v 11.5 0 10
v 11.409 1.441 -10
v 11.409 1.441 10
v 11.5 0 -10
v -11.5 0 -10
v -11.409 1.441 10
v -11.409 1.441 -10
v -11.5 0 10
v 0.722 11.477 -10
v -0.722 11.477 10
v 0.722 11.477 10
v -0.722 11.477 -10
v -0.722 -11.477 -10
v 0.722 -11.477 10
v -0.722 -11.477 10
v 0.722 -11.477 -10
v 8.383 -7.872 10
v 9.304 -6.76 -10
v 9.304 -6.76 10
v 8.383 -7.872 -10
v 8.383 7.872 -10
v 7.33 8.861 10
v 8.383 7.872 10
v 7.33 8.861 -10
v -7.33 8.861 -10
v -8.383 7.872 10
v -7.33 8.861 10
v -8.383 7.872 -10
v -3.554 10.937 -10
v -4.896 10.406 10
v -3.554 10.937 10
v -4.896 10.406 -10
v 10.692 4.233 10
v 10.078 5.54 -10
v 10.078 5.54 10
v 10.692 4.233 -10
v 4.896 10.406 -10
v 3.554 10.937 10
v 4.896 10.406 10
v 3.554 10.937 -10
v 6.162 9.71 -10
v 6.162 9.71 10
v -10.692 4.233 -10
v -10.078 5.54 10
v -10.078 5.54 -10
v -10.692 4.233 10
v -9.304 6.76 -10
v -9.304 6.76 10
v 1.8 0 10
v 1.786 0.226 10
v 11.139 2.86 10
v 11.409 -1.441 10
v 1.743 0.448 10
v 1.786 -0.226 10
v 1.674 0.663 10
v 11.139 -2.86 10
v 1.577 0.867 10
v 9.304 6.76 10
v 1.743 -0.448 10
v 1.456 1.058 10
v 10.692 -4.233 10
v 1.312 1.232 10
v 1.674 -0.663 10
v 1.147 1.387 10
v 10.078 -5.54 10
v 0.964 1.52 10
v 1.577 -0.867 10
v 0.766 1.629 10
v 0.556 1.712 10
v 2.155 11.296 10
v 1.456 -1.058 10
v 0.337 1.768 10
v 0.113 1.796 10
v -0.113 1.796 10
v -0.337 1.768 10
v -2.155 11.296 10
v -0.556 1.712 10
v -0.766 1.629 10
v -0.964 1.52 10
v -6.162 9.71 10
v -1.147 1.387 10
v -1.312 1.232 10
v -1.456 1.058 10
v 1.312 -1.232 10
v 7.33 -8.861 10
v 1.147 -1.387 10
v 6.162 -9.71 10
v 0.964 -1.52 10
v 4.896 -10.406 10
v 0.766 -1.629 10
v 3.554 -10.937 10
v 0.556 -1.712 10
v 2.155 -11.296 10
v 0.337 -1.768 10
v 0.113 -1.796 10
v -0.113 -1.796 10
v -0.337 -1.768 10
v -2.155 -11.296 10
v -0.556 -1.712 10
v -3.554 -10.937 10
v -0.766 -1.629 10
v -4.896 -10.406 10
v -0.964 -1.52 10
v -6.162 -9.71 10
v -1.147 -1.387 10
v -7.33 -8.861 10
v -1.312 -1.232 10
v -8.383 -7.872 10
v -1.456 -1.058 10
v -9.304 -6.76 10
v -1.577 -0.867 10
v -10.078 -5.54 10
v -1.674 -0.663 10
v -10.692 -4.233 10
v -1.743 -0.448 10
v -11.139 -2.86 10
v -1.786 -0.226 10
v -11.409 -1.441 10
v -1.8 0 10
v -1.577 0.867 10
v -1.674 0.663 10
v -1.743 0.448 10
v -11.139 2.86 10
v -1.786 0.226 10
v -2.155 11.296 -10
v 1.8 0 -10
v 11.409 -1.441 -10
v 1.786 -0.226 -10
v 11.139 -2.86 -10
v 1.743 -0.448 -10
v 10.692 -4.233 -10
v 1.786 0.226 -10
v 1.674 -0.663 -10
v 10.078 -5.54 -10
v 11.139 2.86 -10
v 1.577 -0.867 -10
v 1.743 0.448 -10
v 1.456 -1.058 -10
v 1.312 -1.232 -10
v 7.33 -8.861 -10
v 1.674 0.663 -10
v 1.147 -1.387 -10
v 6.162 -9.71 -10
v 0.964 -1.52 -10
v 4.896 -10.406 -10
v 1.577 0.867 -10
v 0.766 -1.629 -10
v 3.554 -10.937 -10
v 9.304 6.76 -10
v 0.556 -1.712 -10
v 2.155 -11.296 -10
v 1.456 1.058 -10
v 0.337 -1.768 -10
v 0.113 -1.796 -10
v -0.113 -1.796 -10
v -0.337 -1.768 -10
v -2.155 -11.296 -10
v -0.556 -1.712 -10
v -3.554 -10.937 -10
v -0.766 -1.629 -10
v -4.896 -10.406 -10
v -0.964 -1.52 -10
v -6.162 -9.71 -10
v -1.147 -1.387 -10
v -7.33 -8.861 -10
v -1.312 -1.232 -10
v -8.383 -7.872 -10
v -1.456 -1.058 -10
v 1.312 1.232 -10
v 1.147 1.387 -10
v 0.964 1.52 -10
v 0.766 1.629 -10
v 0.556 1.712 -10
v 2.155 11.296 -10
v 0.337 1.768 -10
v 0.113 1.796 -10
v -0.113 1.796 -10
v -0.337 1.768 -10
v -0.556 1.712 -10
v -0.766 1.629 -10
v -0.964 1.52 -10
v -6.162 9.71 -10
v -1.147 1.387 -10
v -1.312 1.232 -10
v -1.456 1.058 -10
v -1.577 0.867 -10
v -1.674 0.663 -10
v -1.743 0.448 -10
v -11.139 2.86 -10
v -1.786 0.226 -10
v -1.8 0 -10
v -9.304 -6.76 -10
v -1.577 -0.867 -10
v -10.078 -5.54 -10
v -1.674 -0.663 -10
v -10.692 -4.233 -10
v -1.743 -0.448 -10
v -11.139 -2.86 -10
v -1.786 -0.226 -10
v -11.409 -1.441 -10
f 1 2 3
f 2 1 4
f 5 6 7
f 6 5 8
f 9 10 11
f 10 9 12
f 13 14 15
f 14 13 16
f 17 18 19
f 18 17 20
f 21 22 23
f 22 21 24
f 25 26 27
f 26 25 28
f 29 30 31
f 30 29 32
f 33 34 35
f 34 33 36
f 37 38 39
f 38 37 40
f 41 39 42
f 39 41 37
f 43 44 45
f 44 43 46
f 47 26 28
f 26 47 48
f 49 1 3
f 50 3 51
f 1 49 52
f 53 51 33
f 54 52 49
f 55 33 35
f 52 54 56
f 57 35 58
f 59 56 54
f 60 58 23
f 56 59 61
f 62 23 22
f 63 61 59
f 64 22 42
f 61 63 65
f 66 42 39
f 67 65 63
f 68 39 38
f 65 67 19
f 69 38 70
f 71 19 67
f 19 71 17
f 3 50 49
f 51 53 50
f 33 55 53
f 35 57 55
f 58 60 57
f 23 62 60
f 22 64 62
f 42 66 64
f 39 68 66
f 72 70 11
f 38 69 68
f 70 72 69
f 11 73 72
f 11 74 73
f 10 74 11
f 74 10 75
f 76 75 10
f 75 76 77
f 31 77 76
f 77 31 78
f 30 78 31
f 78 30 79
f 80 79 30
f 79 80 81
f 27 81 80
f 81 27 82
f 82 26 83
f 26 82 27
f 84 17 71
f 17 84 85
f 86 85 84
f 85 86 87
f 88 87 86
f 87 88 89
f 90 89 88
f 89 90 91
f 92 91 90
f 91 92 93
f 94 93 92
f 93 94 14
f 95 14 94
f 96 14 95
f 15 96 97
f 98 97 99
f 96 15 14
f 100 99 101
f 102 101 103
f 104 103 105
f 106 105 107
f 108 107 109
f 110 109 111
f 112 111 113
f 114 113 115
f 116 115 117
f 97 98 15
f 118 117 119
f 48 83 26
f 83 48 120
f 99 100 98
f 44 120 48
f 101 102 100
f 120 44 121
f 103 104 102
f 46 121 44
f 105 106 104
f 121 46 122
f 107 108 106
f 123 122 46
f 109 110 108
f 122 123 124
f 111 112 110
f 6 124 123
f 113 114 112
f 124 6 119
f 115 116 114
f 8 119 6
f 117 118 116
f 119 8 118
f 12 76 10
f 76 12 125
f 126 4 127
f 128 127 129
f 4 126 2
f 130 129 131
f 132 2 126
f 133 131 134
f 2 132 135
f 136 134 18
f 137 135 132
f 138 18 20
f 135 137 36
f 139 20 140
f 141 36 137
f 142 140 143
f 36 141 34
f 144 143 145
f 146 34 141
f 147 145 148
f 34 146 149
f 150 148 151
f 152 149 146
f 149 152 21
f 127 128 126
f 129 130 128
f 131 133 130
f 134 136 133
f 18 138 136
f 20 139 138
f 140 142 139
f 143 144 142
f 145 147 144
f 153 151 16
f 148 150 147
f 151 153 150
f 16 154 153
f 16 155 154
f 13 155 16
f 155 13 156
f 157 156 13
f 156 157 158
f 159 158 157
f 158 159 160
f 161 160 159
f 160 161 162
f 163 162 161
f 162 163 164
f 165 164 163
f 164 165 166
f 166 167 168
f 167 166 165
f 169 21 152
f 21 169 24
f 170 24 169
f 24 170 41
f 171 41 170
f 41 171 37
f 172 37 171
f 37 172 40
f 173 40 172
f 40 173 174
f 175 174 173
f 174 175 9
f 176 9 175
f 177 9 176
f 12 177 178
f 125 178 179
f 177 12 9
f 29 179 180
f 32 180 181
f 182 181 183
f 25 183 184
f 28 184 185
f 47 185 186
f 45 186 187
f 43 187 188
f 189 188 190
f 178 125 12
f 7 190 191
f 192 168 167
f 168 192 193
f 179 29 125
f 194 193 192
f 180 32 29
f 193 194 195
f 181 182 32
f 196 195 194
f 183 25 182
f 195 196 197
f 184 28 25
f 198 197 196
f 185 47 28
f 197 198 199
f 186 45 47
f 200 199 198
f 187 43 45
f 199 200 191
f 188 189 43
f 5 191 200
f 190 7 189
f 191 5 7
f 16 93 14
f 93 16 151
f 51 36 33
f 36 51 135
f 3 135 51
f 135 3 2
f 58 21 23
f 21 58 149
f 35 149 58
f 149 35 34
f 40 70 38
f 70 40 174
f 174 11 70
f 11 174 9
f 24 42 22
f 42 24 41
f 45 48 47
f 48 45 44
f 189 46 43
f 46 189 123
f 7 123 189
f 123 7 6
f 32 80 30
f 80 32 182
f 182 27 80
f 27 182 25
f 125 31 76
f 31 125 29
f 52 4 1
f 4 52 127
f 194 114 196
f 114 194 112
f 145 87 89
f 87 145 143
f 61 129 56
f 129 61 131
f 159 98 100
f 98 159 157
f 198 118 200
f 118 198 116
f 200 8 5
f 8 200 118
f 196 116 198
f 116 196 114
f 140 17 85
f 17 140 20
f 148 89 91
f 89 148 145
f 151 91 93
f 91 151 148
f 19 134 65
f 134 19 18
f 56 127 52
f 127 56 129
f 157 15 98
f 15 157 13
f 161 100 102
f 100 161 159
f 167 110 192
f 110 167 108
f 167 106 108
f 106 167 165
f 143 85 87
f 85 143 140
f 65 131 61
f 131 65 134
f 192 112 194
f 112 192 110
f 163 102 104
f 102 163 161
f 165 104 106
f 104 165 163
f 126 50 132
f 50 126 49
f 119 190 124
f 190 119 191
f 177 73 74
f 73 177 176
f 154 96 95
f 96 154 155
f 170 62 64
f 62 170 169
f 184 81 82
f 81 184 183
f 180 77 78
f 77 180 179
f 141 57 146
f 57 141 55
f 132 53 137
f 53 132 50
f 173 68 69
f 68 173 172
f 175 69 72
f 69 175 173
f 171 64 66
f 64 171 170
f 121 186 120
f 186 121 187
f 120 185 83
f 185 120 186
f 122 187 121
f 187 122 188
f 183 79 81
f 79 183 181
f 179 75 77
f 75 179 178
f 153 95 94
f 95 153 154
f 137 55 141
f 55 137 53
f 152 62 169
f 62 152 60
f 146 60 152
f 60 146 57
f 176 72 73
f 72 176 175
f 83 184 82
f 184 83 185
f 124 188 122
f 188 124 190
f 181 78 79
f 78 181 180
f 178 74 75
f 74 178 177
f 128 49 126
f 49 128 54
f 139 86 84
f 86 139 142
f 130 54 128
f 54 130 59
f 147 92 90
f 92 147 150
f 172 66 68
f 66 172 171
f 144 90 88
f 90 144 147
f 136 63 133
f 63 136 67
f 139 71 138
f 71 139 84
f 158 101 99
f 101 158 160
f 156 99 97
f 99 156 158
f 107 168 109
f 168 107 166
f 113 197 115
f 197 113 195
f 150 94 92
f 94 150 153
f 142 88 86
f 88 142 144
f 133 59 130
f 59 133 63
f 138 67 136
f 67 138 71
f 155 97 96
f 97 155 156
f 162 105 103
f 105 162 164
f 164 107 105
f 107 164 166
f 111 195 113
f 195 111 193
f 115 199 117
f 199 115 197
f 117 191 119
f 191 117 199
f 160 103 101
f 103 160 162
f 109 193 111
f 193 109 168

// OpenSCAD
$fn = 50;


difference() {
	union() {
		translate(v = [0, 0, -10.0000000000]) {
			cylinder(h = 20, r = 11.5000000000);
		}
	}
	union() {
		translate(v = [0, 0, -100.0000000000]) {
			cylinder(h = 200, r = 1.8000000000);
		}
	}
}
